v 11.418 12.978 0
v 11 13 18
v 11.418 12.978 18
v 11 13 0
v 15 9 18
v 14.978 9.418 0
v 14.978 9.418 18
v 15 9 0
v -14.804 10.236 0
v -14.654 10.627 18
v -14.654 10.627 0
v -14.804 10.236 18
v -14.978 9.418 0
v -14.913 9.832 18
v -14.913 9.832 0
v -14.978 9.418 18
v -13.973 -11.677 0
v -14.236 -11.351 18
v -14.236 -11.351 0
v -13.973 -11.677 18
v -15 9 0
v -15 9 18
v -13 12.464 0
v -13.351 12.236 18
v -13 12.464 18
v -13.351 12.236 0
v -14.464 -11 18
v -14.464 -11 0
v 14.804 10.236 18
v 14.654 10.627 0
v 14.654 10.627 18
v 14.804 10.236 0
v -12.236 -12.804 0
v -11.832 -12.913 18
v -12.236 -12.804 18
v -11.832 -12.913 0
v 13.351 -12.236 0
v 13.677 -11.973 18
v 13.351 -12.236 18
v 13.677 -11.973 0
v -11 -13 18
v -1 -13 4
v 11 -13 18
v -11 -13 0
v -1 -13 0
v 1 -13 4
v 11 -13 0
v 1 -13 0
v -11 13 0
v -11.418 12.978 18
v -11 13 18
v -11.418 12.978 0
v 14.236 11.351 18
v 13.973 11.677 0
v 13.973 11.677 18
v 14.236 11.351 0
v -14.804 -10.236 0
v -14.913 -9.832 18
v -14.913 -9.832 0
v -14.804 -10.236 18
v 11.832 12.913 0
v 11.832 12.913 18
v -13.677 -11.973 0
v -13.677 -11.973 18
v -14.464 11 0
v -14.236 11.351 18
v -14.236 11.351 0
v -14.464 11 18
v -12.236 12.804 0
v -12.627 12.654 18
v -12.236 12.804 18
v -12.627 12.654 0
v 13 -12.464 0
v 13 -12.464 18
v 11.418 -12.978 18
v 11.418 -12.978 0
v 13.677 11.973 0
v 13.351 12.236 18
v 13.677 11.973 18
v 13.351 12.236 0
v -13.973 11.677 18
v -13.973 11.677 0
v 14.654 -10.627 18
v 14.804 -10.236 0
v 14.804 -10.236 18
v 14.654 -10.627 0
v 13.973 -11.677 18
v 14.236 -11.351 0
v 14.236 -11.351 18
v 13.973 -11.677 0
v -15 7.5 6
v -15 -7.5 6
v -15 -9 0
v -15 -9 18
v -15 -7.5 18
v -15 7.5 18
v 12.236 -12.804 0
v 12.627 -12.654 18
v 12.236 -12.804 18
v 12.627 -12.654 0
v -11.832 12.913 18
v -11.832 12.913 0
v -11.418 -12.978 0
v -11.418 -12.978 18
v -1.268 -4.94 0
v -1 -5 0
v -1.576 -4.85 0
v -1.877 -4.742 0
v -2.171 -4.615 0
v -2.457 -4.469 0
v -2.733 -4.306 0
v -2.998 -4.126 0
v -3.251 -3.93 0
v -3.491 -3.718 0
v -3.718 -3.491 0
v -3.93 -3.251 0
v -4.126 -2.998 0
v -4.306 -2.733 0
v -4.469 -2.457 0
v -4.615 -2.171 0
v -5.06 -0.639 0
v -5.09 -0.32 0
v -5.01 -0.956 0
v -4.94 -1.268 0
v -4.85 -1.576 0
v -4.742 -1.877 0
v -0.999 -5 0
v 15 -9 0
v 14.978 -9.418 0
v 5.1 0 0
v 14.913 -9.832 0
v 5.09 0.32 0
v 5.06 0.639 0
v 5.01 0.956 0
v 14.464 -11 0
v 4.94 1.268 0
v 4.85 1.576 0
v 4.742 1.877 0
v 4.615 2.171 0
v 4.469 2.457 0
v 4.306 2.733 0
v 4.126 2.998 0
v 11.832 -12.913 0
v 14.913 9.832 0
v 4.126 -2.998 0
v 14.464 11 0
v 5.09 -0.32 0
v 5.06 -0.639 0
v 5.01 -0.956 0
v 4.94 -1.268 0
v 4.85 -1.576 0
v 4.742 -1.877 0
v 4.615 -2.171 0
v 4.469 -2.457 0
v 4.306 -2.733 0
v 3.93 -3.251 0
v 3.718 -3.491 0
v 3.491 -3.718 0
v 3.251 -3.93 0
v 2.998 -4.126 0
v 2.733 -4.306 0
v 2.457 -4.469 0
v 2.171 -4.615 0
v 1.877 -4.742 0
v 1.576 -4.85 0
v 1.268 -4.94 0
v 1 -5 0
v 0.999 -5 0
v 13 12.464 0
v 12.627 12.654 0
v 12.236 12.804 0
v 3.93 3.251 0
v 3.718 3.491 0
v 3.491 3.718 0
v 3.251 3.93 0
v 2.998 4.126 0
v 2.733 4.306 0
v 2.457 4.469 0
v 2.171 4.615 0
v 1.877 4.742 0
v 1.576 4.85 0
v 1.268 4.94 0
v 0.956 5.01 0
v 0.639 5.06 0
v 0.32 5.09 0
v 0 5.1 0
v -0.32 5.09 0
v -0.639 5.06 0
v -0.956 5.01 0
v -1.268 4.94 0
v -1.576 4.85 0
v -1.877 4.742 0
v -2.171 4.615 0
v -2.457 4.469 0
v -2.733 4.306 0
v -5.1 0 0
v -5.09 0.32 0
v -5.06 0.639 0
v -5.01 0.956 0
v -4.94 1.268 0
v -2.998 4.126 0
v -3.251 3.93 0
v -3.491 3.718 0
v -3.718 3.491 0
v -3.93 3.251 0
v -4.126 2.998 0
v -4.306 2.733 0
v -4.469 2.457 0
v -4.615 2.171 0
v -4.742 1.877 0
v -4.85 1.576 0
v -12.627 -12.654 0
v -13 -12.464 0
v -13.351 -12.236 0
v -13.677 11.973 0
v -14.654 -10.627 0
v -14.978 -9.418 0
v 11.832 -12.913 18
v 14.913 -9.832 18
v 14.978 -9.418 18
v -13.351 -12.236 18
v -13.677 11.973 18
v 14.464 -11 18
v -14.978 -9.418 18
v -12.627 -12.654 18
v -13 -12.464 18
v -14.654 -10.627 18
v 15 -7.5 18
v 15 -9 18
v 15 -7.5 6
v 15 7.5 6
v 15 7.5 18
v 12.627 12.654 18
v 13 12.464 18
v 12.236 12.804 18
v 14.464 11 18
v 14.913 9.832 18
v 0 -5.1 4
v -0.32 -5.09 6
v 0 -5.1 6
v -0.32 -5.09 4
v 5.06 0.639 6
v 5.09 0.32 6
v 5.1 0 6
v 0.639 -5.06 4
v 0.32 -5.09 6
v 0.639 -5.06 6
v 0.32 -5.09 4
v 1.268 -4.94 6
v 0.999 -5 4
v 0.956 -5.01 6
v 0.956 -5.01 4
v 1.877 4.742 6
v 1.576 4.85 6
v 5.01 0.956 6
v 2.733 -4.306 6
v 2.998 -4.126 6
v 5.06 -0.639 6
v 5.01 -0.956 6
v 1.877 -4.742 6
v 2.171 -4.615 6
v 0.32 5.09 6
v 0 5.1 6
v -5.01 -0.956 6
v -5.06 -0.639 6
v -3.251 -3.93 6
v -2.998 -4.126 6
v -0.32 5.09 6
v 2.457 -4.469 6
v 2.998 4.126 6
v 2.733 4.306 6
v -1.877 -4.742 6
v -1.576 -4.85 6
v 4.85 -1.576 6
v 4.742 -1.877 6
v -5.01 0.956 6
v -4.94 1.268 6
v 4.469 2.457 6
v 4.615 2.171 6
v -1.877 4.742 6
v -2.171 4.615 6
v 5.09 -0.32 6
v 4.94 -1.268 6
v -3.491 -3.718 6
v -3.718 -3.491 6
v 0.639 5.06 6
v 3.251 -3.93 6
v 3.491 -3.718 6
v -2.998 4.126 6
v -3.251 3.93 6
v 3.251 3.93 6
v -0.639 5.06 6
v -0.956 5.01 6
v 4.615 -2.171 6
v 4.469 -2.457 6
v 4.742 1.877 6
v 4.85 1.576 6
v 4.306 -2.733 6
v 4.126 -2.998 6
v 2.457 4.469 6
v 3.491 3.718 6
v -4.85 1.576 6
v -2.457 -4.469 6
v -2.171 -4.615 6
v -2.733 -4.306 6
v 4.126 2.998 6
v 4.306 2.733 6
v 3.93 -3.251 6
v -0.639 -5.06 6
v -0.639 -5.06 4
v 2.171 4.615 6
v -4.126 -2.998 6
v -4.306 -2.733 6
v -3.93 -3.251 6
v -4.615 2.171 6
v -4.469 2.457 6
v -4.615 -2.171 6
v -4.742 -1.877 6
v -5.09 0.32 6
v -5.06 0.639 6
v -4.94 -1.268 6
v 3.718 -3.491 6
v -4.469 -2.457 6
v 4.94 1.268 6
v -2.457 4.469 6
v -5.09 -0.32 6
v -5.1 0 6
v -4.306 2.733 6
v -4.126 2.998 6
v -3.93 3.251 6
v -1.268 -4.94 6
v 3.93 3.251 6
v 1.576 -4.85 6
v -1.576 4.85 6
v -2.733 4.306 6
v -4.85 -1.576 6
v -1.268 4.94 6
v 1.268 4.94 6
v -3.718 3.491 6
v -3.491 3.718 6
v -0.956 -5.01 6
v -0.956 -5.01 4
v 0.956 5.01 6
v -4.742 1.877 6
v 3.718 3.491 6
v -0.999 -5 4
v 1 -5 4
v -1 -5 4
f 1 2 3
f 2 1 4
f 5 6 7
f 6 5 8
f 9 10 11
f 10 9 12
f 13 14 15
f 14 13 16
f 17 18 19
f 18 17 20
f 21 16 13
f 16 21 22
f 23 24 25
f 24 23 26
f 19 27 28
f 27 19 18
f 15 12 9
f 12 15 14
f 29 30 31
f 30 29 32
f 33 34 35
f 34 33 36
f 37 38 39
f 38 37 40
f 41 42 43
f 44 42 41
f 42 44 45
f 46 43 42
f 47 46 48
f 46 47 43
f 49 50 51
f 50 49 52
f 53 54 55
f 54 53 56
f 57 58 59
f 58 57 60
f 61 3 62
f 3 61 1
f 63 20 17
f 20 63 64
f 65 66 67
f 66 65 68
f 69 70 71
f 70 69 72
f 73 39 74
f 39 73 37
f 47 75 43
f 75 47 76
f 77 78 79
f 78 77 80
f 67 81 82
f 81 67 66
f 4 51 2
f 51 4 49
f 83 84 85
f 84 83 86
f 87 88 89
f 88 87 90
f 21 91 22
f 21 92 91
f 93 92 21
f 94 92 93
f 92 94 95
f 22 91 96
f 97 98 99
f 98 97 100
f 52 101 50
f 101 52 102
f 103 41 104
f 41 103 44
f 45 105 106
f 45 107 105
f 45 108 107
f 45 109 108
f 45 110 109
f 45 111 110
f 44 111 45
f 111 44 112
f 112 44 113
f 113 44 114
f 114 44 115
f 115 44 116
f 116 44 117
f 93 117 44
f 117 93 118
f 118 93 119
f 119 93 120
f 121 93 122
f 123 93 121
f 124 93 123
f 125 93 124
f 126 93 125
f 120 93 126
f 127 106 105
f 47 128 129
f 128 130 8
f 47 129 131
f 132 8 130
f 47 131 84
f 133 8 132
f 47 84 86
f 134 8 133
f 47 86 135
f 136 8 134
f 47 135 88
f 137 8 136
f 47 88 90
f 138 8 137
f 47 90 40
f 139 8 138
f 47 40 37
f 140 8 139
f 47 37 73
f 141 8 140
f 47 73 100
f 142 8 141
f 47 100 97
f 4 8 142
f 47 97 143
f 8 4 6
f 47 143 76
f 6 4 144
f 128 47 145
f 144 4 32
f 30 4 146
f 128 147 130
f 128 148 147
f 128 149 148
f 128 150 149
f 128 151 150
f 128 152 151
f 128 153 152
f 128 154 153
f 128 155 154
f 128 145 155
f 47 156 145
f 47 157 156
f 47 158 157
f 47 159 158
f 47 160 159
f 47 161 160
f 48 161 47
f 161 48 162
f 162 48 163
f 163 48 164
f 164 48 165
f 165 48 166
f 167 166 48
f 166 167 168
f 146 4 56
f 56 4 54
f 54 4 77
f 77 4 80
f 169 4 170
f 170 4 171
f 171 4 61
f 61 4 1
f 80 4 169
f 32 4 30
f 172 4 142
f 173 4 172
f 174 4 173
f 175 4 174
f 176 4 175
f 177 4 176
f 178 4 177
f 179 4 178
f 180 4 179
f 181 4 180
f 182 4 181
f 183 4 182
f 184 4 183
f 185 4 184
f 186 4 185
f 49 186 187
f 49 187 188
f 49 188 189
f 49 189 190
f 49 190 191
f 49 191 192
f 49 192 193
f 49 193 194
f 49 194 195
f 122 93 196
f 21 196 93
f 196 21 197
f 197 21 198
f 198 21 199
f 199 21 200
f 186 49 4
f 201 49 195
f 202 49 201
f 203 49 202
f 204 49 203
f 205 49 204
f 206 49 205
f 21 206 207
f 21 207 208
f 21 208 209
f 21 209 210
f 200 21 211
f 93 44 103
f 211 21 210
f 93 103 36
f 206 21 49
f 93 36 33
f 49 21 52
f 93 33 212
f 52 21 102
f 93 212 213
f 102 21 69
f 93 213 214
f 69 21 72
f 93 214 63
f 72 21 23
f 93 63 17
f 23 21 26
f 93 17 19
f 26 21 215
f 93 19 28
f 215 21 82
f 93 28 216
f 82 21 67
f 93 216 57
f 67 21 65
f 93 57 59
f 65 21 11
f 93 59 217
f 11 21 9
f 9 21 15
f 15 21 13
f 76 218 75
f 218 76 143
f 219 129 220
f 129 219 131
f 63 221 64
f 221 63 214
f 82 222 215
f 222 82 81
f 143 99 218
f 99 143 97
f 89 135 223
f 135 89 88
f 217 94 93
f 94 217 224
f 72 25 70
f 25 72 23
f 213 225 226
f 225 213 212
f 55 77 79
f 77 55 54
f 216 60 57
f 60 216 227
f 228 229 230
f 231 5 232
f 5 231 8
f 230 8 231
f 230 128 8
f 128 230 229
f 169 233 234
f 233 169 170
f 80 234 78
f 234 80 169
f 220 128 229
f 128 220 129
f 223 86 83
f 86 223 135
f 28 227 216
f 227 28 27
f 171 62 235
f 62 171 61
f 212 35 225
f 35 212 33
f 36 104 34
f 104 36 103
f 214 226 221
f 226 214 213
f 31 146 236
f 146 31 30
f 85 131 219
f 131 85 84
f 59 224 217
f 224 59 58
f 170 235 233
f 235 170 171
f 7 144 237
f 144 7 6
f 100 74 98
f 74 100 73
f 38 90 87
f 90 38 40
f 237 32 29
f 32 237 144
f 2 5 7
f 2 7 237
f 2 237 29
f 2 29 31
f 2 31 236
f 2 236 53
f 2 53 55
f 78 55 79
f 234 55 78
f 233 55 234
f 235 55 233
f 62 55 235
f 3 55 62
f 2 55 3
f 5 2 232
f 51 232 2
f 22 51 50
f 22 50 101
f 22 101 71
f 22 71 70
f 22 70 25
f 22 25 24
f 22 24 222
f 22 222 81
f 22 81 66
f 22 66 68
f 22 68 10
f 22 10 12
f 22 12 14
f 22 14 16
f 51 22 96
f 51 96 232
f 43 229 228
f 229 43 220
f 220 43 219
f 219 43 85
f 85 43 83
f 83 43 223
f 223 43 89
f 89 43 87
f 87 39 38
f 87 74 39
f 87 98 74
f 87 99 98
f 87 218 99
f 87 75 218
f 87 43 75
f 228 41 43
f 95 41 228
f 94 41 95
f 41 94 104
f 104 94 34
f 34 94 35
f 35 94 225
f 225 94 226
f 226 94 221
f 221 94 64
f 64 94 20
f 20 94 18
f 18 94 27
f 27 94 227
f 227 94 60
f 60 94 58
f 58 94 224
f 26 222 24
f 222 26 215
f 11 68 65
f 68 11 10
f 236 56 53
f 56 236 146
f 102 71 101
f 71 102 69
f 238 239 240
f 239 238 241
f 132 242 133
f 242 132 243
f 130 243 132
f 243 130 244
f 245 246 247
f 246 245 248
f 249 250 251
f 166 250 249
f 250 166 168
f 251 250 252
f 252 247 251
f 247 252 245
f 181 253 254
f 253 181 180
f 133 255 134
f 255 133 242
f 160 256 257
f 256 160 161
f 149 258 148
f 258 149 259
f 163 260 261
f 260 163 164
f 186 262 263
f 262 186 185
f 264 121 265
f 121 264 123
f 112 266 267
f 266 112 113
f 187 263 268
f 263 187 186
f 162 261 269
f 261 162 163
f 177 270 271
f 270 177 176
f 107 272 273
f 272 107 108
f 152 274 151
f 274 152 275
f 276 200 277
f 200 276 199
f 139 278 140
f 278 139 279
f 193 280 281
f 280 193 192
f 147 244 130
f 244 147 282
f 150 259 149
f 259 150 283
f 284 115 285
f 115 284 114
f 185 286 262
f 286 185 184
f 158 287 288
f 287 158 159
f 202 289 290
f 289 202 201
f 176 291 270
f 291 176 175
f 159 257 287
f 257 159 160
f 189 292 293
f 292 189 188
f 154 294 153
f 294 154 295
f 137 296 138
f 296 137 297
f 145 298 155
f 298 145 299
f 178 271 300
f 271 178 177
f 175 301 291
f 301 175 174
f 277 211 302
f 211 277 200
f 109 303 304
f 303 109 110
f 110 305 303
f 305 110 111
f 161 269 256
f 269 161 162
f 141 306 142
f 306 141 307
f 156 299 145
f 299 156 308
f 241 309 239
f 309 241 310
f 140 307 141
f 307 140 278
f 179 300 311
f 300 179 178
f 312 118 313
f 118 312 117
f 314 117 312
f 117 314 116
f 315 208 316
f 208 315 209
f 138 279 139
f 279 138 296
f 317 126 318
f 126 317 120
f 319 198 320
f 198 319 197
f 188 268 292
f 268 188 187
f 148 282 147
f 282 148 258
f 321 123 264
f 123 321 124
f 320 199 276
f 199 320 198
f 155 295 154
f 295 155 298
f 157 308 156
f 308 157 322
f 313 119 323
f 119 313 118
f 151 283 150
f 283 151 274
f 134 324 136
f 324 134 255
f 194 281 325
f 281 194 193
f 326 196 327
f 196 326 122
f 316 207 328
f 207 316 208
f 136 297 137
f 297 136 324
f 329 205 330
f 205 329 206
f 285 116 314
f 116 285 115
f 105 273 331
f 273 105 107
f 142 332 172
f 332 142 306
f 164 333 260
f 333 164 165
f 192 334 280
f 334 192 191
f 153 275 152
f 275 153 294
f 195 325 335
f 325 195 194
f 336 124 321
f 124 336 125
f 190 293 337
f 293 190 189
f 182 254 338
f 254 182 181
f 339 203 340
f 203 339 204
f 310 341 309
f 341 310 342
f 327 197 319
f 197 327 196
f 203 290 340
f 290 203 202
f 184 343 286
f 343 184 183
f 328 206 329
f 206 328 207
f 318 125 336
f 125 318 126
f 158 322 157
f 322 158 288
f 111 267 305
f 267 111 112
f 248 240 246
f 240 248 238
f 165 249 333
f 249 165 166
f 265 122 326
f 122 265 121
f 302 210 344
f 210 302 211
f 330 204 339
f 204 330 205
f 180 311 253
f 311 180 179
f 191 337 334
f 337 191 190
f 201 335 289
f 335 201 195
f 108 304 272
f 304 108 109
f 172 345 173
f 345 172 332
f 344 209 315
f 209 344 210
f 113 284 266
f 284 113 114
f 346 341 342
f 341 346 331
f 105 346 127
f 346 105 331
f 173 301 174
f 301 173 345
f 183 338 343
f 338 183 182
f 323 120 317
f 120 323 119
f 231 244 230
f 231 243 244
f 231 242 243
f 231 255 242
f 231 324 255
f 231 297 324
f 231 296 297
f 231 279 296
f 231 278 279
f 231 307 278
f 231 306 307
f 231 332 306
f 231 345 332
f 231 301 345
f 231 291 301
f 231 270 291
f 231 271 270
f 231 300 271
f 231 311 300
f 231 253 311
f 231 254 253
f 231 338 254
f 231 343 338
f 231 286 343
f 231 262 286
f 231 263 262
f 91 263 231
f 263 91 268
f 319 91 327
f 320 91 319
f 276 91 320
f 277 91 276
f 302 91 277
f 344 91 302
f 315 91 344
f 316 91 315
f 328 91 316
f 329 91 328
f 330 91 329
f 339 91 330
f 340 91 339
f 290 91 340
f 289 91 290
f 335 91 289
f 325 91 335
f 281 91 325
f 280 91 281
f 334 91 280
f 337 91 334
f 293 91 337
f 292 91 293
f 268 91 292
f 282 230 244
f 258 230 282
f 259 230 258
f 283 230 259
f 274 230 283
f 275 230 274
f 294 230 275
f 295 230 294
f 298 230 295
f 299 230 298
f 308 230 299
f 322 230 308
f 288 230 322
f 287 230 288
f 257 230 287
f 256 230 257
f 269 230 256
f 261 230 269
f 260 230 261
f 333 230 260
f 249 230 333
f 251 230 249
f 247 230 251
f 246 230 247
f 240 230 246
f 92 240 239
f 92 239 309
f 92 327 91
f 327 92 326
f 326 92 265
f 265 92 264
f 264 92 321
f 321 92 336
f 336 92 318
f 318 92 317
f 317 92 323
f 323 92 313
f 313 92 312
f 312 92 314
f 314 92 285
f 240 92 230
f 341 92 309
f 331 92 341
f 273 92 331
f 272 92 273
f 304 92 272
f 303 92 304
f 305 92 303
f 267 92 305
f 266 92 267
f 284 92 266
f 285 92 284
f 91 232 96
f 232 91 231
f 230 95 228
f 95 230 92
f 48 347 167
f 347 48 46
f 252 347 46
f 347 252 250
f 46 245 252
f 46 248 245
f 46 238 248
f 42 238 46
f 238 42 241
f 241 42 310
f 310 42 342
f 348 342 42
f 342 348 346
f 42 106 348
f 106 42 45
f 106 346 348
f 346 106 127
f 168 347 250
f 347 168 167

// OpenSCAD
// V52.1-Right Pacer - Deep Cut Version
// Specifically for Vybronics VG1030001XH 

module v52_1_right() {
    difference() {
        // 1. THE MAIN BODY (The "Block")
        hull() {
            translate([-11, -9, 0])  cylinder(r=4, h=18, $fn=60);
            translate([11, -9, 0])   cylinder(r=4, h=18, $fn=60);
            translate([-11, 9, 0])   cylinder(r=4, h=18, $fn=60);
            translate([11, 9, 0])    cylinder(r=4, h=18, $fn=60);
        }

        // 2. THE MOTOR HOLE (The "Opening")
        // We start the cut at Z = -2 and go to Z = 8 to ensure it breaks the surface
        translate([0, 0, -2]) 
            cylinder(d=10.2, h=10, $fn=100);

        // 3. THE BATTERY POD SLOT (The "Clip")
        // This hollows out the core so it can snap onto the headphones
        translate([-16, -7.5, 6]) 
            cube([32, 15, 15]); 

        // 4. WIRE TRENCH (AWG 30 Exit)
        translate([0, -15, 1.5]) 
            cube([2, 20, 5], center=true);

        // 5. THE "R" MARKING (Deep Emboss)
        // Carved 3mm deep to ensure it shows up in the STL
        translate([0, 0, 16]) 
            linear_extrude(height = 4) 
                text("R", size=9, font="Arial:style=Bold", halign="center", valign="center");
    }
}

v52_1_right();
